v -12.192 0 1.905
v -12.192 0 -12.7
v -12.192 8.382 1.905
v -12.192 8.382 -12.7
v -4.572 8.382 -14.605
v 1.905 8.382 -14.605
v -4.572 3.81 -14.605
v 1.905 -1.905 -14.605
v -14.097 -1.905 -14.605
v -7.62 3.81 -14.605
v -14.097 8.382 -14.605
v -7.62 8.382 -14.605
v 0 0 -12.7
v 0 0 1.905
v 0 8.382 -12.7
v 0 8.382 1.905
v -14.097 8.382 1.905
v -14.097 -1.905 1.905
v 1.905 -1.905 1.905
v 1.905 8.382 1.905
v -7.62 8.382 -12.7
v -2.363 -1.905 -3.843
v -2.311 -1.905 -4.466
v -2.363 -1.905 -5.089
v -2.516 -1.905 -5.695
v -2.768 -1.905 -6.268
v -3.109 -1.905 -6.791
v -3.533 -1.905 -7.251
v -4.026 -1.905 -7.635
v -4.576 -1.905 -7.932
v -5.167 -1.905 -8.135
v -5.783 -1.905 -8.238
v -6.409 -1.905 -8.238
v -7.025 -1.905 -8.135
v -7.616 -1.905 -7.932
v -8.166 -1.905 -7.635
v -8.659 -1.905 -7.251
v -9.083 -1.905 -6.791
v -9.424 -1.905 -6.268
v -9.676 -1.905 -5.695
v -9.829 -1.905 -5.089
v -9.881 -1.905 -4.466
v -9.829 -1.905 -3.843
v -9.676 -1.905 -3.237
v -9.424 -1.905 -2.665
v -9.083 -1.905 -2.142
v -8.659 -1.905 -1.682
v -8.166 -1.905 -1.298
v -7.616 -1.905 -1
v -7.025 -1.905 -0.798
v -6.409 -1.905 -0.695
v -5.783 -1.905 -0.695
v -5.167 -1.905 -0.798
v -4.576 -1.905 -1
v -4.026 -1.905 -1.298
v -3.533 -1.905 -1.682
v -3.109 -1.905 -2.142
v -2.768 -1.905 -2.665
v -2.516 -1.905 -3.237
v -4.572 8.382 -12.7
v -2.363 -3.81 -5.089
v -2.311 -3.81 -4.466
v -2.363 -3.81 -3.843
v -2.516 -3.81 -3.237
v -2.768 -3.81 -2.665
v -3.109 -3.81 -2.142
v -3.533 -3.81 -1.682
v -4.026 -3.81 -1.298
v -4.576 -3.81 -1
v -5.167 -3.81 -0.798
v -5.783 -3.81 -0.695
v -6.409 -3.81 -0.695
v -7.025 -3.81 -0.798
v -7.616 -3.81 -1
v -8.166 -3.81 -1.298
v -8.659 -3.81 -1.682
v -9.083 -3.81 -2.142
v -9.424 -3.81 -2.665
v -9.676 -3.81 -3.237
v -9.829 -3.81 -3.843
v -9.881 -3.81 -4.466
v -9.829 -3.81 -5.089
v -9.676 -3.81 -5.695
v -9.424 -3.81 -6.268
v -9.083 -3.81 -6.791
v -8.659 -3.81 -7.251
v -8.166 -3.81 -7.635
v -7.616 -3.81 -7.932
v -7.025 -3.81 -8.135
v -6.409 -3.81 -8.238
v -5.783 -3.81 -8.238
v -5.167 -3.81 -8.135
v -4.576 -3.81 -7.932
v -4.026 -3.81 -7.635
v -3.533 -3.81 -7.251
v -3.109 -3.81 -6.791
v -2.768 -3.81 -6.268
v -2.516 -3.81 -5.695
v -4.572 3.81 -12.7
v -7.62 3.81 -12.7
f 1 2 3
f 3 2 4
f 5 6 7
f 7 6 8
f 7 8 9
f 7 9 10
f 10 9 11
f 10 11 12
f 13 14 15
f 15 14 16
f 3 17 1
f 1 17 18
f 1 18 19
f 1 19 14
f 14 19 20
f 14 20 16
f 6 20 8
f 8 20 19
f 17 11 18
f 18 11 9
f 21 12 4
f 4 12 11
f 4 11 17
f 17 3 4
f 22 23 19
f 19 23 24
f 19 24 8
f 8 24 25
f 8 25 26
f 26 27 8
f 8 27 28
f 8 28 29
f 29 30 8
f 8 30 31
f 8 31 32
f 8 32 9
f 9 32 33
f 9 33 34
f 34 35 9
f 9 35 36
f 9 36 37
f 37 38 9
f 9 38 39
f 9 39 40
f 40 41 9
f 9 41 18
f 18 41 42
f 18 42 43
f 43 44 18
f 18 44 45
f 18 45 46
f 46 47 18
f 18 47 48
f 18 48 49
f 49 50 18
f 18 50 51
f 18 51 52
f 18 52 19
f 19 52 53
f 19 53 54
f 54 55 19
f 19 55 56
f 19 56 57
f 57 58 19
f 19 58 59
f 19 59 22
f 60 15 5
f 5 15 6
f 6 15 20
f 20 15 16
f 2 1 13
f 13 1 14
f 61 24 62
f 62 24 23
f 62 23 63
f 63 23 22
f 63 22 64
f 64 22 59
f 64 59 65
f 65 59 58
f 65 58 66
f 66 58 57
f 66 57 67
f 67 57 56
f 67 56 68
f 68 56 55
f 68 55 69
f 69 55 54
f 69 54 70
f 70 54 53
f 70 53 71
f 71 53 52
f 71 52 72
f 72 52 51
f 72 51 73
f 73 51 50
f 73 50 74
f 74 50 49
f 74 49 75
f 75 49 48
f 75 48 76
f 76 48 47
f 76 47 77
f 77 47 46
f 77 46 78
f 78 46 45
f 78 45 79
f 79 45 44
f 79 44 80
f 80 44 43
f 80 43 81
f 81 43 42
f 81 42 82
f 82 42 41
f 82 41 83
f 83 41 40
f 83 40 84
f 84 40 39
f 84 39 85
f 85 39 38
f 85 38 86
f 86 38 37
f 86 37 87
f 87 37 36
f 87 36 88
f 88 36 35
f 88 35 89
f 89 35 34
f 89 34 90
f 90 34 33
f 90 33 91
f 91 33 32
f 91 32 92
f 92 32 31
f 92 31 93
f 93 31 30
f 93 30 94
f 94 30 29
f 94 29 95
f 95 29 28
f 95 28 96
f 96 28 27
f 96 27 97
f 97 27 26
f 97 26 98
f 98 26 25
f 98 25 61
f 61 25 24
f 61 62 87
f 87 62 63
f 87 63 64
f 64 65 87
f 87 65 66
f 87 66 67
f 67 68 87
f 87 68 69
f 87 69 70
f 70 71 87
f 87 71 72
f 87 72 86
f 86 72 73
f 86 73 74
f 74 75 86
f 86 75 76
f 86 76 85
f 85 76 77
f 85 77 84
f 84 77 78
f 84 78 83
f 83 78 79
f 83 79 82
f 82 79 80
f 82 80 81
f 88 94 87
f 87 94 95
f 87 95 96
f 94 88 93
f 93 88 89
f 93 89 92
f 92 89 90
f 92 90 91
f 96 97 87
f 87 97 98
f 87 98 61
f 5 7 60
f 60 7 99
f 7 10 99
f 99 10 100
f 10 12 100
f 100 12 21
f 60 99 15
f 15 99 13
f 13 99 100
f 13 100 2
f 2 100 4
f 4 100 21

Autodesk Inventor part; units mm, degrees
ref_plane "YZ Plane" through (0, 0, 0) normal (1, 0, 0) x (0, 1, 0)
ref_plane "XZ Plane" through (0, 0, 0) normal (0, 1, 0) x (-1, 0, 0)
ref_plane "XY Plane" through (0, 0, 0) normal (0, 0, 1) x (1, 0, 0)
sketch "Sketch1" plane through (0, 0, 0) normal (0, 1, 0) x (-1, 0, 0)
  line L0 (0, 0) -> (12.192, 0)
  line L1 (12.192, 0) -> (12.192, -12.7)
  line L2 (12.192, -12.7) -> (0, -12.7)
  line L3 (0, -12.7) -> (0, 0)
  line L4 (14.097, -14.605) -> (14.097, 1.905)
  line L5 (14.097, 1.905) -> (-1.905, 1.905)
  line L6 (-1.905, 1.905) -> (-1.905, -14.605)
  line L7 (-1.905, -14.605) -> (14.097, -14.605)
  line L8 (12.192, 0) -> (12.192, 1.905)
  line L9 (0, 0) -> (0, 1.905)
  dimension "d0" = 12.192
  dimension "d1" = 12.7
  dimension "d2" = 1.905
extrude "Extrusion1" add sketch "Sketch1" along normal blind 8.382 contours L3 L2 L1 L8 L5 L4 L7 L6 L9
extrude "Extrusion2" add sketch "Sketch1" against normal blind 1.905
sketch "Sketch2" plane through (0, -1.905, 0) normal (0, -1, 0) x (1, 0, 0)
  circle A0 centre (-6.096, -4.4663) radius 3.7846
  line L0 (-14.097, 1.905) -> (-14.097, -14.605) projected
  point P0 (0, 0)
  dimension "d7" = 7.5692
  dimension "d8" = 8.001
extrude "Extrusion3" add sketch "Sketch2" along normal blind 1.905
sketch "Sketch3" plane through (1.905, 8.382, -14.605) normal (0, 0, -1) x (-1, 0, 0)
  line L0 (0, 0) -> (16.002, 0) projected
  line L1 (6.477, 0) -> (9.525, 0)
  line L2 (9.525, 0) -> (9.525, -4.572)
  line L3 (9.525, -4.572) -> (6.477, -4.572)
  line L4 (6.477, -4.572) -> (6.477, 0)
  line L5 (14.097, -8.382) -> (1.905, -8.382) projected
  line L6 (0, -10.287) -> (0, 0) projected
  line L7 (1.905, -8.382) -> (1.905, 0) projected
  dimension "d11" = 3.81
  dimension "d13" = 3.048
  dimension "d14" = 4.572
extrude "Extrusion4" cut sketch "Sketch3" against normal blind 1.905
properties part number "SolenoidHolder"
